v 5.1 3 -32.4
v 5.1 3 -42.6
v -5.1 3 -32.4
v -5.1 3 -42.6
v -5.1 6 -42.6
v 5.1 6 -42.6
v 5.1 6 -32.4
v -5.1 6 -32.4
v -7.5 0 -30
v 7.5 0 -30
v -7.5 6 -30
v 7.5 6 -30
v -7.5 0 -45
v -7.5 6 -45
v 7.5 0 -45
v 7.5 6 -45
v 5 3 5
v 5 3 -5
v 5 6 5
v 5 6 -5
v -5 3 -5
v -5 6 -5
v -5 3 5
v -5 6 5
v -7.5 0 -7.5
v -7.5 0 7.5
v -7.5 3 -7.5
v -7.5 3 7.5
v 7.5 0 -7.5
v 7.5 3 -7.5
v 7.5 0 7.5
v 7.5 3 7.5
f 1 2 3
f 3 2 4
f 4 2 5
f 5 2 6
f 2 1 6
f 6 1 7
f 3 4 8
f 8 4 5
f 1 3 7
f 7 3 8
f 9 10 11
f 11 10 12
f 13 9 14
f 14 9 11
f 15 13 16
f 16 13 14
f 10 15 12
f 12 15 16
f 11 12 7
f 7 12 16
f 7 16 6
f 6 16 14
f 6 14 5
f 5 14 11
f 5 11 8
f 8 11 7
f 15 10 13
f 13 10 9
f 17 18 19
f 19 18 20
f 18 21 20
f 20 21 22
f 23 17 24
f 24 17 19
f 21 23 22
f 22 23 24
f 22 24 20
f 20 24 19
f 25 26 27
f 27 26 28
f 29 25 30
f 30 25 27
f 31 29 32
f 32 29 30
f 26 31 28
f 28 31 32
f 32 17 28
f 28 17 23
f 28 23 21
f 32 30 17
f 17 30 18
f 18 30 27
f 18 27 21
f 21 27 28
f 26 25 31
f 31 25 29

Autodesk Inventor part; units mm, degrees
ref_plane "YZ Plane" through (0, 0, 0) normal (1, 0, 0) x (0, 1, 0)
ref_plane "XZ Plane" through (0, 0, 0) normal (0, 1, 0) x (-1, 0, 0)
ref_plane "XY Plane" through (0, 0, 0) normal (0, 0, 1) x (1, 0, 0)
sketch "Sketch1" plane through (0, 0, 0) normal (0, 1, 0) x (-1, 0, 0)
  line L0 (-7.5, 7.5) -> (7.5, 7.5)
  line L1 (7.5, 7.5) -> (7.5, -7.5)
  line L2 (7.5, -7.5) -> (-7.5, -7.5)
  line L3 (-7.5, -7.5) -> (-7.5, 7.5)
  line L4 (-7.5, 7.5) -> (7.5, -7.5) construction
  line L5 (7.5, 7.5) -> (-7.5, -7.5) construction
  line L6 (-5, 5) -> (5, 5)
  line L7 (5, 5) -> (5, -5)
  line L8 (5, -5) -> (-5, -5)
  line L9 (-5, -5) -> (-5, 5)
  line L10 (-5, 5) -> (5, -5) construction
  line L11 (5, 5) -> (-5, -5) construction
  line L12 (0, -7.5) -> (0, -37.5)
  line L13 (-7.5, -45) -> (7.5, -45)
  line L14 (7.5, -45) -> (7.5, -30)
  line L15 (7.5, -30) -> (-7.5, -30)
  line L16 (-7.5, -30) -> (-7.5, -45)
  line L17 (-7.5, -45) -> (7.5, -30) construction
  line L18 (7.5, -45) -> (-7.5, -30) construction
  line L19 (-5.1, -42.6) -> (5.1, -42.6)
  line L20 (5.1, -42.6) -> (5.1, -32.4)
  line L21 (5.1, -32.4) -> (-5.1, -32.4)
  line L22 (-5.1, -32.4) -> (-5.1, -42.6)
  line L23 (-5.1, -42.6) -> (5.1, -32.4) construction
  line L24 (5.1, -42.6) -> (-5.1, -32.4) construction
  point P0 (0, 0)
  dimension "d0" = 15
  dimension "d1" = 15
  dimension "d2" = 10
  dimension "d3" = 10
  dimension "d4" = 30
  dimension "d5" = 15
  dimension "d6" = 15
  dimension "d7" = 10.2
  dimension "d8" = 10.2
extrude "Extrusion3" add sketch "Sketch1" along normal blind 3 contours L0 L1 L2 L3
extrude "Extrusion4" add sketch "Sketch1" along normal blind 6 contours L6 L7 L8 L9
extrude "Extrusion5" add sketch "Sketch1" along normal blind 6 contours L15 L14 L13 L16
extrude "Extrusion6" add sketch "Sketch1" along normal blind 3 contours L21 L20 L19 L22
properties part number "InsertTest"
